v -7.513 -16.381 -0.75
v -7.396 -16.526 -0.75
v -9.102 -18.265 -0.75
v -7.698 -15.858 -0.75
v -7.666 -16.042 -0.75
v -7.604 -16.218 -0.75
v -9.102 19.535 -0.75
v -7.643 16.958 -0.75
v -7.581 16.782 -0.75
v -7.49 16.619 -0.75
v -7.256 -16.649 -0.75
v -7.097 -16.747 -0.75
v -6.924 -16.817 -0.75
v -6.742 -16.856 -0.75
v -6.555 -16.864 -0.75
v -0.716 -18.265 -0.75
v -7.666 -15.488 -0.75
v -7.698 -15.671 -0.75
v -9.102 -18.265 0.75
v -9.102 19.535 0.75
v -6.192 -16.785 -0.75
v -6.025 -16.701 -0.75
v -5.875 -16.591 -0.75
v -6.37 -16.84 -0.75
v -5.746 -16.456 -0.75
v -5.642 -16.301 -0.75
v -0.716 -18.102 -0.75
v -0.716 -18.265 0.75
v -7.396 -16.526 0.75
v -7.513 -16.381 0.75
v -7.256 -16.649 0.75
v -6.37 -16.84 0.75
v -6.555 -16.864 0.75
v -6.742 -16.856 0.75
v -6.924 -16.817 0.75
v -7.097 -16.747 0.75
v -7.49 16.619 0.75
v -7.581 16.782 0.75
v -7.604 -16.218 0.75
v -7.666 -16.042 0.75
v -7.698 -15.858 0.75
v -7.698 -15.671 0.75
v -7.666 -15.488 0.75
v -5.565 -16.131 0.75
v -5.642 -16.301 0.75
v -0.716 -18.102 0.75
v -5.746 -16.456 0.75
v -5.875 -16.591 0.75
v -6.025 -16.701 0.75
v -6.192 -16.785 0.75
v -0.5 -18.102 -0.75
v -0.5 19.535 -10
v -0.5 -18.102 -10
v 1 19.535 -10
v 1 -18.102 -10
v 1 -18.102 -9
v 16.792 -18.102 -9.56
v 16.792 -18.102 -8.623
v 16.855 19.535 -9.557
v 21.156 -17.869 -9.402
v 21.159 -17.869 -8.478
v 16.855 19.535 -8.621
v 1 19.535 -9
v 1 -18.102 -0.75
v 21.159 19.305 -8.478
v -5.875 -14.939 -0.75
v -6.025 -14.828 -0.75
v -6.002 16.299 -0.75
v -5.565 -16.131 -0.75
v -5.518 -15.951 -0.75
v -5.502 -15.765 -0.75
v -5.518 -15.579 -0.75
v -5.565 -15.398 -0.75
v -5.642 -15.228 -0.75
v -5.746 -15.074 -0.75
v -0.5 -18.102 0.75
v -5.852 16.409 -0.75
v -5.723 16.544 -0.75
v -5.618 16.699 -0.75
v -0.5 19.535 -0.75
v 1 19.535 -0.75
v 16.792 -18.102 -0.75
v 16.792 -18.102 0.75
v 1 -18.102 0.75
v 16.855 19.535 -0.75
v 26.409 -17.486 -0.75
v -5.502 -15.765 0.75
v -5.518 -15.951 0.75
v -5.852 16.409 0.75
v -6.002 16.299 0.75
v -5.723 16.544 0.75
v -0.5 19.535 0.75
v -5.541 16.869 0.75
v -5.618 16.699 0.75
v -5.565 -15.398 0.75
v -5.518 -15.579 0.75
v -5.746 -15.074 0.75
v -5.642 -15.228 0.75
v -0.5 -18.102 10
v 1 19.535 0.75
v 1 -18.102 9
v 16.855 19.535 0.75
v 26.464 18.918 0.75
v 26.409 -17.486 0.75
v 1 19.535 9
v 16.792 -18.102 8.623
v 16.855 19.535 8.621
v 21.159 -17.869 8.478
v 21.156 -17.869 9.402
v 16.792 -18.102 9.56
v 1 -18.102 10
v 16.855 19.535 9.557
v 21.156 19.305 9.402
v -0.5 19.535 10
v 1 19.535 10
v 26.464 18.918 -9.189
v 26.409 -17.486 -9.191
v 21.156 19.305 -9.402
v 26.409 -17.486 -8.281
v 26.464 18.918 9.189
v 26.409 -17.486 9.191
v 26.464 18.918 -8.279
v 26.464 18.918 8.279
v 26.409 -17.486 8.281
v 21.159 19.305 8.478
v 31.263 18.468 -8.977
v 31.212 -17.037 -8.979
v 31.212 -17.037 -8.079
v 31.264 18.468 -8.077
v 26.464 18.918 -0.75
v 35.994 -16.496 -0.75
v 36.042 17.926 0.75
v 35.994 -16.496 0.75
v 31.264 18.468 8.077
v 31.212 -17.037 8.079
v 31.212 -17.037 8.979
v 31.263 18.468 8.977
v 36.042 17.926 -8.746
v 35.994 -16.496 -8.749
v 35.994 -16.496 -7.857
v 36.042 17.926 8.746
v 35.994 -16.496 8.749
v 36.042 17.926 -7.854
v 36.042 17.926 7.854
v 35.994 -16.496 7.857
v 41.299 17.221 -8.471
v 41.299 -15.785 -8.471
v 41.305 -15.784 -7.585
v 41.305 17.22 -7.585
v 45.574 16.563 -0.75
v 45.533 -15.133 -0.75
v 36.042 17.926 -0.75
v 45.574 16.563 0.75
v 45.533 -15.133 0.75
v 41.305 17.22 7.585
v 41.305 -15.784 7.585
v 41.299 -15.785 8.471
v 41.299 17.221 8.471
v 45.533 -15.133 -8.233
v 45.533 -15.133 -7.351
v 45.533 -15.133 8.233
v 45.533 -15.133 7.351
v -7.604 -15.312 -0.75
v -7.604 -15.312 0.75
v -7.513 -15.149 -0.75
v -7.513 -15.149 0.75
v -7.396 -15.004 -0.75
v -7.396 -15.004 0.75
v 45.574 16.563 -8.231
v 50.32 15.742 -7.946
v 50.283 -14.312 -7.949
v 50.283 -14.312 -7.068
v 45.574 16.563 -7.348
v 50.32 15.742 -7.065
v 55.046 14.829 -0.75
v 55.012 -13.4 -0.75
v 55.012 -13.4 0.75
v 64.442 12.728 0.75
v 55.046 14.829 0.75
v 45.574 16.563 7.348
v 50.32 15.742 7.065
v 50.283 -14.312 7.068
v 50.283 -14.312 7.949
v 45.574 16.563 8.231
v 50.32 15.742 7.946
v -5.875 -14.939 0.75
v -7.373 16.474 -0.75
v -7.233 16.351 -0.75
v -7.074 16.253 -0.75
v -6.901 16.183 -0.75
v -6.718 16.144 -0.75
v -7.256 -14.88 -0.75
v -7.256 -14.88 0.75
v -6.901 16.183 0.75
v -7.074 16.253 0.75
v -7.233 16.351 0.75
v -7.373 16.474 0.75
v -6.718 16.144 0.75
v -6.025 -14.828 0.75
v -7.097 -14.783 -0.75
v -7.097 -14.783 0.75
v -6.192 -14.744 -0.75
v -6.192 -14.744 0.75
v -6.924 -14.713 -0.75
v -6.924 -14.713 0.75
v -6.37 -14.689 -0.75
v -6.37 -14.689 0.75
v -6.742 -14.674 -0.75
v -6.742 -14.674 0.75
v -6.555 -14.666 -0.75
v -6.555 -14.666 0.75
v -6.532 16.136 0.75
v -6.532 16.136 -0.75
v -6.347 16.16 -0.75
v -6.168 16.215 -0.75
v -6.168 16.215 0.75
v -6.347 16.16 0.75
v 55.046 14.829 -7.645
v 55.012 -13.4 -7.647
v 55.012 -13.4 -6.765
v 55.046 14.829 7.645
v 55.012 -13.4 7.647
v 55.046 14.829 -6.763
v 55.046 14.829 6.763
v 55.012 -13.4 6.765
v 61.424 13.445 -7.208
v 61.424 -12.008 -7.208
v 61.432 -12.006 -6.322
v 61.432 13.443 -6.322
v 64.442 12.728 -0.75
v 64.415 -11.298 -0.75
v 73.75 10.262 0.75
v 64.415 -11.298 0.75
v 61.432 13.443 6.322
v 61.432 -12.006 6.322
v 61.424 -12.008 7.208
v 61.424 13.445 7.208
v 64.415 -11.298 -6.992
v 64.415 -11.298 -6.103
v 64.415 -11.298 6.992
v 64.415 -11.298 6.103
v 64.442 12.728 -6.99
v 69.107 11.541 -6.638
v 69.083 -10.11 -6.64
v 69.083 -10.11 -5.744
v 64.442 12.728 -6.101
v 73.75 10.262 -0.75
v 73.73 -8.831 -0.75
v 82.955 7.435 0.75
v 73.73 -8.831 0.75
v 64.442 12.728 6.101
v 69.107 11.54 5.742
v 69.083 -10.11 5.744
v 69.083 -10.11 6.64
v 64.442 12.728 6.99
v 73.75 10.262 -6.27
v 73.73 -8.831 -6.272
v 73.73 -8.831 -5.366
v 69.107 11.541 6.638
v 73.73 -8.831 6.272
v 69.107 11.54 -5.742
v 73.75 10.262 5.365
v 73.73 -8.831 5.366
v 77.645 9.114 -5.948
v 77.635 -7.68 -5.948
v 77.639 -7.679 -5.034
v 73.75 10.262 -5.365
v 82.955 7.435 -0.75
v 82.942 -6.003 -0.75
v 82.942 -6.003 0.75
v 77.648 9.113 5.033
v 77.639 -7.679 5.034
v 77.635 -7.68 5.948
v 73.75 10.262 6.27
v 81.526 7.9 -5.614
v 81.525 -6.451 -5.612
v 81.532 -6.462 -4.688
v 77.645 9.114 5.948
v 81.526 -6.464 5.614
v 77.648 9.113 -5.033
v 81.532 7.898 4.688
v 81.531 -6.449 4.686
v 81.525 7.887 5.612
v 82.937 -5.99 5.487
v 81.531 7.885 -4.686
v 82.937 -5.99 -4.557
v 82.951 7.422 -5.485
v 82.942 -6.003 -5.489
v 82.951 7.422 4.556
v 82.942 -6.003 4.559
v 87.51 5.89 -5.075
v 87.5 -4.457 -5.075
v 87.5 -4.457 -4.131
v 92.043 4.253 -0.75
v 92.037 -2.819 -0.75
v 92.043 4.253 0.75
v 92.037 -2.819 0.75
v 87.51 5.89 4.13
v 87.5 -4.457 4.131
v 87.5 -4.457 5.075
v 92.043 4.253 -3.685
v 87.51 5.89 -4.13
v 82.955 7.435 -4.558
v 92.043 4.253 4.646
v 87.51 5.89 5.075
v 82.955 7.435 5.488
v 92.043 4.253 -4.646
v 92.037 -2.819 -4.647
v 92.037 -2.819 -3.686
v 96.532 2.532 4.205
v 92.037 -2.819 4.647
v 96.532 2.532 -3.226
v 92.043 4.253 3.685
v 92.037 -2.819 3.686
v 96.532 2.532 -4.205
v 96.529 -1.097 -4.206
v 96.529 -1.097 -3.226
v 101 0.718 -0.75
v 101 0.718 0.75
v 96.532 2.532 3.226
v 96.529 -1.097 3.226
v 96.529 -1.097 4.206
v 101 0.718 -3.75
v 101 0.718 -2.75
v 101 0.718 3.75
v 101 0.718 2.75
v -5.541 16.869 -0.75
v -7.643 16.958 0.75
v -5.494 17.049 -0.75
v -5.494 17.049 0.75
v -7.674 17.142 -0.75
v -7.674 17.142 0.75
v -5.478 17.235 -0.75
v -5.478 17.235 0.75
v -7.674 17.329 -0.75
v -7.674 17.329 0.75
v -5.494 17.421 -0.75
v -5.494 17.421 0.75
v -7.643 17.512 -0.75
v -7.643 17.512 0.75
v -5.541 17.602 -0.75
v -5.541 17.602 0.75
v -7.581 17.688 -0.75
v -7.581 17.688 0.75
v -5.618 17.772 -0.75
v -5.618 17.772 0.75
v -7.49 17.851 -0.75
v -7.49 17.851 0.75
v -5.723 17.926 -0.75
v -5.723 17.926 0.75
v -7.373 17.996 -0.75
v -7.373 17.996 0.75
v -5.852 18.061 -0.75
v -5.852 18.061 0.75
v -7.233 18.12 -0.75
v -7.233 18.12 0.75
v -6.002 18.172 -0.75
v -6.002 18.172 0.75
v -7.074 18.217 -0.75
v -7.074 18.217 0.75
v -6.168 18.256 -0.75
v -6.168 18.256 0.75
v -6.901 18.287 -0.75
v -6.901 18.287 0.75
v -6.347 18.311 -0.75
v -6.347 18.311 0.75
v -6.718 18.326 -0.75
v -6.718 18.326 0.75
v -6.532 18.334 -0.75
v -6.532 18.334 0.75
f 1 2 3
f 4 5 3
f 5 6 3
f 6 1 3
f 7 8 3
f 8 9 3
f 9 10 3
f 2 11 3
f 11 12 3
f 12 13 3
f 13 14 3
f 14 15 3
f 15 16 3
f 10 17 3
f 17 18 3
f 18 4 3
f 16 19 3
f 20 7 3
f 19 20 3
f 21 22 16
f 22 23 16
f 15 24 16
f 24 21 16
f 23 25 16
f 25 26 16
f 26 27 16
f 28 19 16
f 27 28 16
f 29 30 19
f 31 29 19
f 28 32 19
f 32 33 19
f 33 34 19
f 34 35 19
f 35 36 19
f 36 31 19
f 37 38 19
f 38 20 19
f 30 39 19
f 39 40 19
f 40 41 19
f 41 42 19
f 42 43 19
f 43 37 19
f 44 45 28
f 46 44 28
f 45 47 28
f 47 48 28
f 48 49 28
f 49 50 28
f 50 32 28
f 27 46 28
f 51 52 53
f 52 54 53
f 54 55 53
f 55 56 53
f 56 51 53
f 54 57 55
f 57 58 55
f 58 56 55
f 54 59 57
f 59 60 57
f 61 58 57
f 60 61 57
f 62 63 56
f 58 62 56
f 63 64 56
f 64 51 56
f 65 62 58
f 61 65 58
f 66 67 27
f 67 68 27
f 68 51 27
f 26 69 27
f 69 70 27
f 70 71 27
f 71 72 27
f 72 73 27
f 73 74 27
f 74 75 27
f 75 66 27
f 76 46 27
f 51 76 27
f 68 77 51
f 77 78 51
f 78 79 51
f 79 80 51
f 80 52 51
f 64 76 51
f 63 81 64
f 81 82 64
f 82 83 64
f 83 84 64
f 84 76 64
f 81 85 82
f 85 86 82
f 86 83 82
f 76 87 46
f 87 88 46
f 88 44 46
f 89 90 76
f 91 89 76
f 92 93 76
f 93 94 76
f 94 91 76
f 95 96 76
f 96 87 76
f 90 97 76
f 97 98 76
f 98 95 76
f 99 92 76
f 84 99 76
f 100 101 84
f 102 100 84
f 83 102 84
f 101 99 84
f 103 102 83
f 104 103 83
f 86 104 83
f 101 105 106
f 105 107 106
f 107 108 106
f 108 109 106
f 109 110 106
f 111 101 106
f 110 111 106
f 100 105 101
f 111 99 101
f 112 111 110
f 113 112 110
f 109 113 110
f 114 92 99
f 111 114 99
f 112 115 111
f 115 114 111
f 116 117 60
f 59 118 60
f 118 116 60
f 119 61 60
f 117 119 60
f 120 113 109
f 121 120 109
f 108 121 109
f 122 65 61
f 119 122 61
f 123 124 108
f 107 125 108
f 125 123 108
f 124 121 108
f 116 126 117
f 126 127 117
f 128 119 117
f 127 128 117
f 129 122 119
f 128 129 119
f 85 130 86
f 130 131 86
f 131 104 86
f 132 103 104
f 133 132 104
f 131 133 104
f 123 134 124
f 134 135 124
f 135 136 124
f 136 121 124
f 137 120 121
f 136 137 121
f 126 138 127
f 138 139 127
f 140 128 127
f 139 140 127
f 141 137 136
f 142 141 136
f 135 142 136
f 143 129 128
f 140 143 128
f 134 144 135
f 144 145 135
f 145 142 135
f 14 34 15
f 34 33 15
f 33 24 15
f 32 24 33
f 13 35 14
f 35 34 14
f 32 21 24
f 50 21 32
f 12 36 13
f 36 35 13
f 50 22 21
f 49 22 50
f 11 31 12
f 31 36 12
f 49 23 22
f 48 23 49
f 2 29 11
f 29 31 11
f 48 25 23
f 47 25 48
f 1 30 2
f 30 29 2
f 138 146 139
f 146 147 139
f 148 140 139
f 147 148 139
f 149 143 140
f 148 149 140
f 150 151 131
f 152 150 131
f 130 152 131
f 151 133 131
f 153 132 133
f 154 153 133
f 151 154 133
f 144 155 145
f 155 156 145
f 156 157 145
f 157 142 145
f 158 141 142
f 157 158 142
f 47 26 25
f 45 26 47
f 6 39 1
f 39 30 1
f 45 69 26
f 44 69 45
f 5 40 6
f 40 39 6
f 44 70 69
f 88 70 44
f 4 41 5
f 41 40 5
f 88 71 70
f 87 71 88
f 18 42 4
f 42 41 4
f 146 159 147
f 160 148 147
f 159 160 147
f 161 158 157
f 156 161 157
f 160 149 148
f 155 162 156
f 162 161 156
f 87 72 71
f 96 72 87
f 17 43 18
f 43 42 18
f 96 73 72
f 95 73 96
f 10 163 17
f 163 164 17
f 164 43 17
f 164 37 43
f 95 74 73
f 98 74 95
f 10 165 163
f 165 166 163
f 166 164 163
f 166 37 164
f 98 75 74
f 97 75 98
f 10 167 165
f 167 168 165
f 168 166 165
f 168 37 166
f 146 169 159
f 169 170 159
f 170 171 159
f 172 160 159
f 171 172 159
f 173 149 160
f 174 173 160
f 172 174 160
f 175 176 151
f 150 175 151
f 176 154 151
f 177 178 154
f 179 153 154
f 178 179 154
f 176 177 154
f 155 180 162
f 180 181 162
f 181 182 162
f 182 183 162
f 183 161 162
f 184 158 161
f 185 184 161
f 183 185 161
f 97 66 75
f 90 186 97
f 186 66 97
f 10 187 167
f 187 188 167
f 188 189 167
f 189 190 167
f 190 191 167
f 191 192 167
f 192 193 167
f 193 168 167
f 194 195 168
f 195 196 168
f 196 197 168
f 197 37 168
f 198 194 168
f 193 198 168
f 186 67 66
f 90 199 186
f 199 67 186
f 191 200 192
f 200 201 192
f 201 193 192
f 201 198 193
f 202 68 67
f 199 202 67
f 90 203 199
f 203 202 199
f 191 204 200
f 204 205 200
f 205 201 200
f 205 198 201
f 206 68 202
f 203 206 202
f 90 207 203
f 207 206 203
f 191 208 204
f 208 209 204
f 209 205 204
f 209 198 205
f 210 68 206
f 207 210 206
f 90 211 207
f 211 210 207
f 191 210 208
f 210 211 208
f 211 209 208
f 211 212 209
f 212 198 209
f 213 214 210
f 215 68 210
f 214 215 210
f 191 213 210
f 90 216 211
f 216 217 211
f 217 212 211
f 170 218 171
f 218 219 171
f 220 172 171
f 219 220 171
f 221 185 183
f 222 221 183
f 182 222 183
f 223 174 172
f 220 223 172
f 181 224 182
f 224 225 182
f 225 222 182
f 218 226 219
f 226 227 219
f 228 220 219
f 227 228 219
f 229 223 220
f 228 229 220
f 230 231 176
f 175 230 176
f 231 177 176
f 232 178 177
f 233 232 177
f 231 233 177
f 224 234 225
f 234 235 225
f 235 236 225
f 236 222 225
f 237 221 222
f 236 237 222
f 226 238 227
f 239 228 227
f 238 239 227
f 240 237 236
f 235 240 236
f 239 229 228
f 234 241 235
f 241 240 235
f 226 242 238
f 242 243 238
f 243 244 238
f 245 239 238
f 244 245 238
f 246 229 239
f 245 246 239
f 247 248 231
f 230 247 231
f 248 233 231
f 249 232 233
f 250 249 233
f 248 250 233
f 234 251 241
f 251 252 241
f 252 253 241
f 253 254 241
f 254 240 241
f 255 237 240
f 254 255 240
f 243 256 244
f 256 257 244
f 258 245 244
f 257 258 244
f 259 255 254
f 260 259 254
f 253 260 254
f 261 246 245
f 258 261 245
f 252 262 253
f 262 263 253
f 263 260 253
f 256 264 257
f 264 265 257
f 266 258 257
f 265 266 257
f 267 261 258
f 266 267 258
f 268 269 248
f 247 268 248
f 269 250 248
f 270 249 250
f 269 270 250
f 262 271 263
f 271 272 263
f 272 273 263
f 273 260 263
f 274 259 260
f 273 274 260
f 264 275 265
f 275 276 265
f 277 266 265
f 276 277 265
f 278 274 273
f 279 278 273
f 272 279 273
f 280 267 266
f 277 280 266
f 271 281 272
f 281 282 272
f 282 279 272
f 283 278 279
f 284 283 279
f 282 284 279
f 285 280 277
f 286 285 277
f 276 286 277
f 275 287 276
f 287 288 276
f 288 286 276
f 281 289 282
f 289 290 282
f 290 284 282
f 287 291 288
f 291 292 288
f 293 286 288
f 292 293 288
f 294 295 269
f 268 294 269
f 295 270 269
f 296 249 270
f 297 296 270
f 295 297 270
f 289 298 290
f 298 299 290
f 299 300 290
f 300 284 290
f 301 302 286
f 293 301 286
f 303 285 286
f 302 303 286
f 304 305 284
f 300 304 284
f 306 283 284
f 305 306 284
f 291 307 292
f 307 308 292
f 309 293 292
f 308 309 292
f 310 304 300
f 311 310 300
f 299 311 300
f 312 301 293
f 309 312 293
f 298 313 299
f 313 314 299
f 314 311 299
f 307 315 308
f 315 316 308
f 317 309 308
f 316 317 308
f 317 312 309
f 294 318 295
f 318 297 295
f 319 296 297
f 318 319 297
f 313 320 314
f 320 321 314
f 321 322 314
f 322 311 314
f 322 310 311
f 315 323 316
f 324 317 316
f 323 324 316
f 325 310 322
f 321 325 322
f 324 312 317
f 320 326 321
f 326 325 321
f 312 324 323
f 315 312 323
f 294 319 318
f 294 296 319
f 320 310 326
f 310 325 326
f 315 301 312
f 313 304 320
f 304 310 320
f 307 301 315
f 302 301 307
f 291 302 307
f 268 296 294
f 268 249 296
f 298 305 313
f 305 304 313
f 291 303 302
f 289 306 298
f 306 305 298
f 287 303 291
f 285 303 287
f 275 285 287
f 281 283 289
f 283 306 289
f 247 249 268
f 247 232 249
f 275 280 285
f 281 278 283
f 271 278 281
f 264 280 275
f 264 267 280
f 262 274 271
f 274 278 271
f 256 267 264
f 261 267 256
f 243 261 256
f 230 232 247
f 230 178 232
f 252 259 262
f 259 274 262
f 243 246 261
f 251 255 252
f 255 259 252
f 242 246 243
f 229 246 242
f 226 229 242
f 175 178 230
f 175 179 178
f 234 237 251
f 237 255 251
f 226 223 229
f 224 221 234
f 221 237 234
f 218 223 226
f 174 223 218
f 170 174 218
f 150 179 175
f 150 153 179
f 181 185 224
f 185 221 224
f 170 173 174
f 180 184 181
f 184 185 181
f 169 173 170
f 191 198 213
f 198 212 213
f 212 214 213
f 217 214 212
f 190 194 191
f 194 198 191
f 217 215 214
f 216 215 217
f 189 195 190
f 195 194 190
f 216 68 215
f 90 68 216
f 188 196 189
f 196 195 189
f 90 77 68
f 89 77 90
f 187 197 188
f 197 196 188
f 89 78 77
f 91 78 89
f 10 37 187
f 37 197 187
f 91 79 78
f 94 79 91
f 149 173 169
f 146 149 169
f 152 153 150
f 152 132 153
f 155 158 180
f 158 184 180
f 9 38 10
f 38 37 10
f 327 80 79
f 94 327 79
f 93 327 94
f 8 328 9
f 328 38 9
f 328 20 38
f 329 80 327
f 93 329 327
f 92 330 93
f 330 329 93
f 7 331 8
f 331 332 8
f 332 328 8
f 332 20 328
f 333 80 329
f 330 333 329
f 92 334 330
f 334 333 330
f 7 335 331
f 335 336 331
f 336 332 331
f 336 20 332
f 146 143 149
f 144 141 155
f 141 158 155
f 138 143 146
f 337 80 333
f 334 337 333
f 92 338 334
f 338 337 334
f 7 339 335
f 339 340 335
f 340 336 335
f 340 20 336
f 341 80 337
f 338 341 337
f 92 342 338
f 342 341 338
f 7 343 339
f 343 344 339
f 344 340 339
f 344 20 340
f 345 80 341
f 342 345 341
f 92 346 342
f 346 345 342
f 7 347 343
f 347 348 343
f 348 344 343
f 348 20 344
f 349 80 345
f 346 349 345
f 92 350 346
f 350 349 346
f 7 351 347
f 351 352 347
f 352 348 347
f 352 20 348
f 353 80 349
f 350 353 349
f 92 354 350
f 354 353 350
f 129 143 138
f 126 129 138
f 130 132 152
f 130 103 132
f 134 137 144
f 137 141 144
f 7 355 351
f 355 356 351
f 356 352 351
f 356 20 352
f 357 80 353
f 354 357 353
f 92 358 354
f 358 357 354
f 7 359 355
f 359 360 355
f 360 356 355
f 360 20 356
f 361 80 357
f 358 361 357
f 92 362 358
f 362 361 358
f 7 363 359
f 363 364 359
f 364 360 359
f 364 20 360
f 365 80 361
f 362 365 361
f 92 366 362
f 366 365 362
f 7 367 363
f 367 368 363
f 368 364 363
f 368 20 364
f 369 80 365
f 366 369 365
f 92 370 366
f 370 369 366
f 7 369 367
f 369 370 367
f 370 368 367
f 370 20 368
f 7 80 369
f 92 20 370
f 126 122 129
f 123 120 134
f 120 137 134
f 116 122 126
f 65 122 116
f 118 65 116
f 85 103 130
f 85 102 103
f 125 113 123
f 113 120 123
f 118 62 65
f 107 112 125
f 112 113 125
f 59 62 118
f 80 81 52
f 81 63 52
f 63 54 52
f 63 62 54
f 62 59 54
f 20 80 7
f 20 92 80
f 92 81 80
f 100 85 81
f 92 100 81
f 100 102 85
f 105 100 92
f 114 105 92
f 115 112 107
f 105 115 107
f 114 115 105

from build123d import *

# Parameters (mm, degrees)
EXTRUDE_1_DEPTH          = 0.75
EXTRUDE_1_DEPTH_BACK     = 0.75
SKETCH_1_W               = 10
SKETCH_1_H               = 38
SKETCH_1_R               = 1.1
SKETCH_3_W               = 20
SKETCH_3_H               = 38.036879249
EXTRUDE_2_DEPTH          = 1.5
EXTRUDE_3_DEPTH          = 0.75
EXTRUDE_3_DEPTH_BACK     = 0.75
EXTRUDE_4_DEPTH          = 38
CUT_EXTRUDE_1_DEPTH      = 10
CUT_EXTRUDE_1_DEPTH_BACK = 20
CUT_EXTRUDE_4_DEPTH      = 0.2
CUT_EXTRUDE_4_DEPTH_BACK = 0.2
SKETCH_10_W              = 112.497058814
SKETCH_10_H              = 20.543414641
CUT_EXTRUDE_5_DEPTH      = 0.2
CUT_EXTRUDE_5_DEPTH_BACK = 0.2
SKETCH_11_W              = 104.514605189
SKETCH_11_H              = 21.657747512


with BuildPart() as part:
    # 草圖1 → 填料-伸長1 (new, two sides: drawn at the far end of the back side and taken through both)
    with BuildSketch(Plane.XY.offset(-EXTRUDE_1_DEPTH_BACK)):
        with Locations((-4.101832994, 0.735234216)):
            Rectangle(SKETCH_1_W, SKETCH_1_H)
        with Locations((-6.601832994, -15.764765784)):
            Circle(SKETCH_1_R, mode=Mode.SUBTRACT)
        with Locations((-6.578411405, 17.235234216)):
            Circle(SKETCH_1_R, mode=Mode.SUBTRACT)
    extrude(amount=EXTRUDE_1_DEPTH + EXTRUDE_1_DEPTH_BACK)

    # 草圖3 → 填料-伸長2 (add)
    with BuildSketch(Plane(origin=(-0.5, 0, 0), x_dir=(0, 0, -1), z_dir=(1, 0, 0))):
        with Locations((0, 0.716794592)):
            Rectangle(SKETCH_3_W, SKETCH_3_H)
    extrude(amount=EXTRUDE_2_DEPTH)

    # 草圖4 → 填料-伸長3 (add, two sides: drawn at the far end of the back side and taken through both)
    with BuildSketch(Plane.XY.offset(-EXTRUDE_3_DEPTH_BACK)):
        with BuildLine():
            Line((1, 19.735234216), (1, -18.298860138))
            ThreePointArc((1, -18.298860138), (51.989546932, -13.993809638), (101, 0.718187039))
            ThreePointArc((101, 0.718187039), (51.989546932, 15.430183716), (1, 19.735234216))
        make_face()
    extrude(amount=EXTRUDE_3_DEPTH + EXTRUDE_3_DEPTH_BACK)

    # 草圖5 → 填料-伸長4 (add)
    with BuildSketch(Plane(origin=(0, 19.735234216, 0), x_dir=(1, 0, 0), z_dir=(0, 1, 0))):
        with BuildLine():
            Line((1, -9), (1, -10))
            ThreePointArc((1, -10), (51.064071237, -7.900139791), (101, -3.75))
            Line((101, -3.75), (101, -2.75))
            ThreePointArc((101, -2.75), (51.071468752, -7.018500027), (1, -9))
        make_face()
        with BuildLine():
            Line((101, 2.75), (101, 3.75))
            ThreePointArc((101, 3.75), (51.064071237, 7.900139791), (1, 10))
            Line((1, 10), (1, 9))
            ThreePointArc((1, 9), (51.071468752, 7.018500027), (101, 2.75))
        make_face()
    extrude(amount=-EXTRUDE_4_DEPTH)

    # 草圖8 → 除料-伸長1 (cut, two sides: drawn at the far end of the back side and taken through both)
    with BuildSketch(Plane.XY.offset(10).offset(-CUT_EXTRUDE_1_DEPTH_BACK)):
        with BuildLine():
            Line((13.103688801, -18.23809131), (101, -18.264765784))
            Line((101, -18.264765784), (101, 0.718187039))
            ThreePointArc((101, 0.718187039), (57.921072507, -12.790381672), (13.103688801, -18.23809131))
        make_face()
        with BuildLine():
            ThreePointArc((13.103688801, 19.674465387), (57.921072507, 14.22675575), (101, 0.718187039))
            Line((101, 0.718187039), (101, 19.701139862))
            Line((101, 19.701139862), (13.103688801, 19.674465387))
        make_face()
    extrude(amount=CUT_EXTRUDE_1_DEPTH + CUT_EXTRUDE_1_DEPTH_BACK, mode=Mode.SUBTRACT)

    # 草圖10 → 除料-伸長4 (cut, two sides: drawn at the far end of the back side and taken through both)
    with BuildSketch(Plane(origin=(0, 19.735234216, 0), x_dir=(1, 0, 0), z_dir=(0, 1, 0)).offset(-CUT_EXTRUDE_4_DEPTH_BACK)):
        with Locations((46.49437126, 0.271707321)):
            Rectangle(SKETCH_10_W, SKETCH_10_H)
    extrude(amount=CUT_EXTRUDE_4_DEPTH + CUT_EXTRUDE_4_DEPTH_BACK, mode=Mode.SUBTRACT)

    # 草圖11 → 除料-伸長5 (cut, two sides: drawn at the far end of the back side and taken through both)
    with BuildSketch(Plane(origin=(0, -18.301645033, 0), x_dir=(-1, 0, 0), z_dir=(0, -1, 0)).offset(-CUT_EXTRUDE_5_DEPTH_BACK)):
        with Locations((-51.541283716, 0.828873756)):
            Rectangle(SKETCH_11_W, SKETCH_11_H)
    extrude(amount=CUT_EXTRUDE_5_DEPTH + CUT_EXTRUDE_5_DEPTH_BACK, mode=Mode.SUBTRACT)


solid = part.part
